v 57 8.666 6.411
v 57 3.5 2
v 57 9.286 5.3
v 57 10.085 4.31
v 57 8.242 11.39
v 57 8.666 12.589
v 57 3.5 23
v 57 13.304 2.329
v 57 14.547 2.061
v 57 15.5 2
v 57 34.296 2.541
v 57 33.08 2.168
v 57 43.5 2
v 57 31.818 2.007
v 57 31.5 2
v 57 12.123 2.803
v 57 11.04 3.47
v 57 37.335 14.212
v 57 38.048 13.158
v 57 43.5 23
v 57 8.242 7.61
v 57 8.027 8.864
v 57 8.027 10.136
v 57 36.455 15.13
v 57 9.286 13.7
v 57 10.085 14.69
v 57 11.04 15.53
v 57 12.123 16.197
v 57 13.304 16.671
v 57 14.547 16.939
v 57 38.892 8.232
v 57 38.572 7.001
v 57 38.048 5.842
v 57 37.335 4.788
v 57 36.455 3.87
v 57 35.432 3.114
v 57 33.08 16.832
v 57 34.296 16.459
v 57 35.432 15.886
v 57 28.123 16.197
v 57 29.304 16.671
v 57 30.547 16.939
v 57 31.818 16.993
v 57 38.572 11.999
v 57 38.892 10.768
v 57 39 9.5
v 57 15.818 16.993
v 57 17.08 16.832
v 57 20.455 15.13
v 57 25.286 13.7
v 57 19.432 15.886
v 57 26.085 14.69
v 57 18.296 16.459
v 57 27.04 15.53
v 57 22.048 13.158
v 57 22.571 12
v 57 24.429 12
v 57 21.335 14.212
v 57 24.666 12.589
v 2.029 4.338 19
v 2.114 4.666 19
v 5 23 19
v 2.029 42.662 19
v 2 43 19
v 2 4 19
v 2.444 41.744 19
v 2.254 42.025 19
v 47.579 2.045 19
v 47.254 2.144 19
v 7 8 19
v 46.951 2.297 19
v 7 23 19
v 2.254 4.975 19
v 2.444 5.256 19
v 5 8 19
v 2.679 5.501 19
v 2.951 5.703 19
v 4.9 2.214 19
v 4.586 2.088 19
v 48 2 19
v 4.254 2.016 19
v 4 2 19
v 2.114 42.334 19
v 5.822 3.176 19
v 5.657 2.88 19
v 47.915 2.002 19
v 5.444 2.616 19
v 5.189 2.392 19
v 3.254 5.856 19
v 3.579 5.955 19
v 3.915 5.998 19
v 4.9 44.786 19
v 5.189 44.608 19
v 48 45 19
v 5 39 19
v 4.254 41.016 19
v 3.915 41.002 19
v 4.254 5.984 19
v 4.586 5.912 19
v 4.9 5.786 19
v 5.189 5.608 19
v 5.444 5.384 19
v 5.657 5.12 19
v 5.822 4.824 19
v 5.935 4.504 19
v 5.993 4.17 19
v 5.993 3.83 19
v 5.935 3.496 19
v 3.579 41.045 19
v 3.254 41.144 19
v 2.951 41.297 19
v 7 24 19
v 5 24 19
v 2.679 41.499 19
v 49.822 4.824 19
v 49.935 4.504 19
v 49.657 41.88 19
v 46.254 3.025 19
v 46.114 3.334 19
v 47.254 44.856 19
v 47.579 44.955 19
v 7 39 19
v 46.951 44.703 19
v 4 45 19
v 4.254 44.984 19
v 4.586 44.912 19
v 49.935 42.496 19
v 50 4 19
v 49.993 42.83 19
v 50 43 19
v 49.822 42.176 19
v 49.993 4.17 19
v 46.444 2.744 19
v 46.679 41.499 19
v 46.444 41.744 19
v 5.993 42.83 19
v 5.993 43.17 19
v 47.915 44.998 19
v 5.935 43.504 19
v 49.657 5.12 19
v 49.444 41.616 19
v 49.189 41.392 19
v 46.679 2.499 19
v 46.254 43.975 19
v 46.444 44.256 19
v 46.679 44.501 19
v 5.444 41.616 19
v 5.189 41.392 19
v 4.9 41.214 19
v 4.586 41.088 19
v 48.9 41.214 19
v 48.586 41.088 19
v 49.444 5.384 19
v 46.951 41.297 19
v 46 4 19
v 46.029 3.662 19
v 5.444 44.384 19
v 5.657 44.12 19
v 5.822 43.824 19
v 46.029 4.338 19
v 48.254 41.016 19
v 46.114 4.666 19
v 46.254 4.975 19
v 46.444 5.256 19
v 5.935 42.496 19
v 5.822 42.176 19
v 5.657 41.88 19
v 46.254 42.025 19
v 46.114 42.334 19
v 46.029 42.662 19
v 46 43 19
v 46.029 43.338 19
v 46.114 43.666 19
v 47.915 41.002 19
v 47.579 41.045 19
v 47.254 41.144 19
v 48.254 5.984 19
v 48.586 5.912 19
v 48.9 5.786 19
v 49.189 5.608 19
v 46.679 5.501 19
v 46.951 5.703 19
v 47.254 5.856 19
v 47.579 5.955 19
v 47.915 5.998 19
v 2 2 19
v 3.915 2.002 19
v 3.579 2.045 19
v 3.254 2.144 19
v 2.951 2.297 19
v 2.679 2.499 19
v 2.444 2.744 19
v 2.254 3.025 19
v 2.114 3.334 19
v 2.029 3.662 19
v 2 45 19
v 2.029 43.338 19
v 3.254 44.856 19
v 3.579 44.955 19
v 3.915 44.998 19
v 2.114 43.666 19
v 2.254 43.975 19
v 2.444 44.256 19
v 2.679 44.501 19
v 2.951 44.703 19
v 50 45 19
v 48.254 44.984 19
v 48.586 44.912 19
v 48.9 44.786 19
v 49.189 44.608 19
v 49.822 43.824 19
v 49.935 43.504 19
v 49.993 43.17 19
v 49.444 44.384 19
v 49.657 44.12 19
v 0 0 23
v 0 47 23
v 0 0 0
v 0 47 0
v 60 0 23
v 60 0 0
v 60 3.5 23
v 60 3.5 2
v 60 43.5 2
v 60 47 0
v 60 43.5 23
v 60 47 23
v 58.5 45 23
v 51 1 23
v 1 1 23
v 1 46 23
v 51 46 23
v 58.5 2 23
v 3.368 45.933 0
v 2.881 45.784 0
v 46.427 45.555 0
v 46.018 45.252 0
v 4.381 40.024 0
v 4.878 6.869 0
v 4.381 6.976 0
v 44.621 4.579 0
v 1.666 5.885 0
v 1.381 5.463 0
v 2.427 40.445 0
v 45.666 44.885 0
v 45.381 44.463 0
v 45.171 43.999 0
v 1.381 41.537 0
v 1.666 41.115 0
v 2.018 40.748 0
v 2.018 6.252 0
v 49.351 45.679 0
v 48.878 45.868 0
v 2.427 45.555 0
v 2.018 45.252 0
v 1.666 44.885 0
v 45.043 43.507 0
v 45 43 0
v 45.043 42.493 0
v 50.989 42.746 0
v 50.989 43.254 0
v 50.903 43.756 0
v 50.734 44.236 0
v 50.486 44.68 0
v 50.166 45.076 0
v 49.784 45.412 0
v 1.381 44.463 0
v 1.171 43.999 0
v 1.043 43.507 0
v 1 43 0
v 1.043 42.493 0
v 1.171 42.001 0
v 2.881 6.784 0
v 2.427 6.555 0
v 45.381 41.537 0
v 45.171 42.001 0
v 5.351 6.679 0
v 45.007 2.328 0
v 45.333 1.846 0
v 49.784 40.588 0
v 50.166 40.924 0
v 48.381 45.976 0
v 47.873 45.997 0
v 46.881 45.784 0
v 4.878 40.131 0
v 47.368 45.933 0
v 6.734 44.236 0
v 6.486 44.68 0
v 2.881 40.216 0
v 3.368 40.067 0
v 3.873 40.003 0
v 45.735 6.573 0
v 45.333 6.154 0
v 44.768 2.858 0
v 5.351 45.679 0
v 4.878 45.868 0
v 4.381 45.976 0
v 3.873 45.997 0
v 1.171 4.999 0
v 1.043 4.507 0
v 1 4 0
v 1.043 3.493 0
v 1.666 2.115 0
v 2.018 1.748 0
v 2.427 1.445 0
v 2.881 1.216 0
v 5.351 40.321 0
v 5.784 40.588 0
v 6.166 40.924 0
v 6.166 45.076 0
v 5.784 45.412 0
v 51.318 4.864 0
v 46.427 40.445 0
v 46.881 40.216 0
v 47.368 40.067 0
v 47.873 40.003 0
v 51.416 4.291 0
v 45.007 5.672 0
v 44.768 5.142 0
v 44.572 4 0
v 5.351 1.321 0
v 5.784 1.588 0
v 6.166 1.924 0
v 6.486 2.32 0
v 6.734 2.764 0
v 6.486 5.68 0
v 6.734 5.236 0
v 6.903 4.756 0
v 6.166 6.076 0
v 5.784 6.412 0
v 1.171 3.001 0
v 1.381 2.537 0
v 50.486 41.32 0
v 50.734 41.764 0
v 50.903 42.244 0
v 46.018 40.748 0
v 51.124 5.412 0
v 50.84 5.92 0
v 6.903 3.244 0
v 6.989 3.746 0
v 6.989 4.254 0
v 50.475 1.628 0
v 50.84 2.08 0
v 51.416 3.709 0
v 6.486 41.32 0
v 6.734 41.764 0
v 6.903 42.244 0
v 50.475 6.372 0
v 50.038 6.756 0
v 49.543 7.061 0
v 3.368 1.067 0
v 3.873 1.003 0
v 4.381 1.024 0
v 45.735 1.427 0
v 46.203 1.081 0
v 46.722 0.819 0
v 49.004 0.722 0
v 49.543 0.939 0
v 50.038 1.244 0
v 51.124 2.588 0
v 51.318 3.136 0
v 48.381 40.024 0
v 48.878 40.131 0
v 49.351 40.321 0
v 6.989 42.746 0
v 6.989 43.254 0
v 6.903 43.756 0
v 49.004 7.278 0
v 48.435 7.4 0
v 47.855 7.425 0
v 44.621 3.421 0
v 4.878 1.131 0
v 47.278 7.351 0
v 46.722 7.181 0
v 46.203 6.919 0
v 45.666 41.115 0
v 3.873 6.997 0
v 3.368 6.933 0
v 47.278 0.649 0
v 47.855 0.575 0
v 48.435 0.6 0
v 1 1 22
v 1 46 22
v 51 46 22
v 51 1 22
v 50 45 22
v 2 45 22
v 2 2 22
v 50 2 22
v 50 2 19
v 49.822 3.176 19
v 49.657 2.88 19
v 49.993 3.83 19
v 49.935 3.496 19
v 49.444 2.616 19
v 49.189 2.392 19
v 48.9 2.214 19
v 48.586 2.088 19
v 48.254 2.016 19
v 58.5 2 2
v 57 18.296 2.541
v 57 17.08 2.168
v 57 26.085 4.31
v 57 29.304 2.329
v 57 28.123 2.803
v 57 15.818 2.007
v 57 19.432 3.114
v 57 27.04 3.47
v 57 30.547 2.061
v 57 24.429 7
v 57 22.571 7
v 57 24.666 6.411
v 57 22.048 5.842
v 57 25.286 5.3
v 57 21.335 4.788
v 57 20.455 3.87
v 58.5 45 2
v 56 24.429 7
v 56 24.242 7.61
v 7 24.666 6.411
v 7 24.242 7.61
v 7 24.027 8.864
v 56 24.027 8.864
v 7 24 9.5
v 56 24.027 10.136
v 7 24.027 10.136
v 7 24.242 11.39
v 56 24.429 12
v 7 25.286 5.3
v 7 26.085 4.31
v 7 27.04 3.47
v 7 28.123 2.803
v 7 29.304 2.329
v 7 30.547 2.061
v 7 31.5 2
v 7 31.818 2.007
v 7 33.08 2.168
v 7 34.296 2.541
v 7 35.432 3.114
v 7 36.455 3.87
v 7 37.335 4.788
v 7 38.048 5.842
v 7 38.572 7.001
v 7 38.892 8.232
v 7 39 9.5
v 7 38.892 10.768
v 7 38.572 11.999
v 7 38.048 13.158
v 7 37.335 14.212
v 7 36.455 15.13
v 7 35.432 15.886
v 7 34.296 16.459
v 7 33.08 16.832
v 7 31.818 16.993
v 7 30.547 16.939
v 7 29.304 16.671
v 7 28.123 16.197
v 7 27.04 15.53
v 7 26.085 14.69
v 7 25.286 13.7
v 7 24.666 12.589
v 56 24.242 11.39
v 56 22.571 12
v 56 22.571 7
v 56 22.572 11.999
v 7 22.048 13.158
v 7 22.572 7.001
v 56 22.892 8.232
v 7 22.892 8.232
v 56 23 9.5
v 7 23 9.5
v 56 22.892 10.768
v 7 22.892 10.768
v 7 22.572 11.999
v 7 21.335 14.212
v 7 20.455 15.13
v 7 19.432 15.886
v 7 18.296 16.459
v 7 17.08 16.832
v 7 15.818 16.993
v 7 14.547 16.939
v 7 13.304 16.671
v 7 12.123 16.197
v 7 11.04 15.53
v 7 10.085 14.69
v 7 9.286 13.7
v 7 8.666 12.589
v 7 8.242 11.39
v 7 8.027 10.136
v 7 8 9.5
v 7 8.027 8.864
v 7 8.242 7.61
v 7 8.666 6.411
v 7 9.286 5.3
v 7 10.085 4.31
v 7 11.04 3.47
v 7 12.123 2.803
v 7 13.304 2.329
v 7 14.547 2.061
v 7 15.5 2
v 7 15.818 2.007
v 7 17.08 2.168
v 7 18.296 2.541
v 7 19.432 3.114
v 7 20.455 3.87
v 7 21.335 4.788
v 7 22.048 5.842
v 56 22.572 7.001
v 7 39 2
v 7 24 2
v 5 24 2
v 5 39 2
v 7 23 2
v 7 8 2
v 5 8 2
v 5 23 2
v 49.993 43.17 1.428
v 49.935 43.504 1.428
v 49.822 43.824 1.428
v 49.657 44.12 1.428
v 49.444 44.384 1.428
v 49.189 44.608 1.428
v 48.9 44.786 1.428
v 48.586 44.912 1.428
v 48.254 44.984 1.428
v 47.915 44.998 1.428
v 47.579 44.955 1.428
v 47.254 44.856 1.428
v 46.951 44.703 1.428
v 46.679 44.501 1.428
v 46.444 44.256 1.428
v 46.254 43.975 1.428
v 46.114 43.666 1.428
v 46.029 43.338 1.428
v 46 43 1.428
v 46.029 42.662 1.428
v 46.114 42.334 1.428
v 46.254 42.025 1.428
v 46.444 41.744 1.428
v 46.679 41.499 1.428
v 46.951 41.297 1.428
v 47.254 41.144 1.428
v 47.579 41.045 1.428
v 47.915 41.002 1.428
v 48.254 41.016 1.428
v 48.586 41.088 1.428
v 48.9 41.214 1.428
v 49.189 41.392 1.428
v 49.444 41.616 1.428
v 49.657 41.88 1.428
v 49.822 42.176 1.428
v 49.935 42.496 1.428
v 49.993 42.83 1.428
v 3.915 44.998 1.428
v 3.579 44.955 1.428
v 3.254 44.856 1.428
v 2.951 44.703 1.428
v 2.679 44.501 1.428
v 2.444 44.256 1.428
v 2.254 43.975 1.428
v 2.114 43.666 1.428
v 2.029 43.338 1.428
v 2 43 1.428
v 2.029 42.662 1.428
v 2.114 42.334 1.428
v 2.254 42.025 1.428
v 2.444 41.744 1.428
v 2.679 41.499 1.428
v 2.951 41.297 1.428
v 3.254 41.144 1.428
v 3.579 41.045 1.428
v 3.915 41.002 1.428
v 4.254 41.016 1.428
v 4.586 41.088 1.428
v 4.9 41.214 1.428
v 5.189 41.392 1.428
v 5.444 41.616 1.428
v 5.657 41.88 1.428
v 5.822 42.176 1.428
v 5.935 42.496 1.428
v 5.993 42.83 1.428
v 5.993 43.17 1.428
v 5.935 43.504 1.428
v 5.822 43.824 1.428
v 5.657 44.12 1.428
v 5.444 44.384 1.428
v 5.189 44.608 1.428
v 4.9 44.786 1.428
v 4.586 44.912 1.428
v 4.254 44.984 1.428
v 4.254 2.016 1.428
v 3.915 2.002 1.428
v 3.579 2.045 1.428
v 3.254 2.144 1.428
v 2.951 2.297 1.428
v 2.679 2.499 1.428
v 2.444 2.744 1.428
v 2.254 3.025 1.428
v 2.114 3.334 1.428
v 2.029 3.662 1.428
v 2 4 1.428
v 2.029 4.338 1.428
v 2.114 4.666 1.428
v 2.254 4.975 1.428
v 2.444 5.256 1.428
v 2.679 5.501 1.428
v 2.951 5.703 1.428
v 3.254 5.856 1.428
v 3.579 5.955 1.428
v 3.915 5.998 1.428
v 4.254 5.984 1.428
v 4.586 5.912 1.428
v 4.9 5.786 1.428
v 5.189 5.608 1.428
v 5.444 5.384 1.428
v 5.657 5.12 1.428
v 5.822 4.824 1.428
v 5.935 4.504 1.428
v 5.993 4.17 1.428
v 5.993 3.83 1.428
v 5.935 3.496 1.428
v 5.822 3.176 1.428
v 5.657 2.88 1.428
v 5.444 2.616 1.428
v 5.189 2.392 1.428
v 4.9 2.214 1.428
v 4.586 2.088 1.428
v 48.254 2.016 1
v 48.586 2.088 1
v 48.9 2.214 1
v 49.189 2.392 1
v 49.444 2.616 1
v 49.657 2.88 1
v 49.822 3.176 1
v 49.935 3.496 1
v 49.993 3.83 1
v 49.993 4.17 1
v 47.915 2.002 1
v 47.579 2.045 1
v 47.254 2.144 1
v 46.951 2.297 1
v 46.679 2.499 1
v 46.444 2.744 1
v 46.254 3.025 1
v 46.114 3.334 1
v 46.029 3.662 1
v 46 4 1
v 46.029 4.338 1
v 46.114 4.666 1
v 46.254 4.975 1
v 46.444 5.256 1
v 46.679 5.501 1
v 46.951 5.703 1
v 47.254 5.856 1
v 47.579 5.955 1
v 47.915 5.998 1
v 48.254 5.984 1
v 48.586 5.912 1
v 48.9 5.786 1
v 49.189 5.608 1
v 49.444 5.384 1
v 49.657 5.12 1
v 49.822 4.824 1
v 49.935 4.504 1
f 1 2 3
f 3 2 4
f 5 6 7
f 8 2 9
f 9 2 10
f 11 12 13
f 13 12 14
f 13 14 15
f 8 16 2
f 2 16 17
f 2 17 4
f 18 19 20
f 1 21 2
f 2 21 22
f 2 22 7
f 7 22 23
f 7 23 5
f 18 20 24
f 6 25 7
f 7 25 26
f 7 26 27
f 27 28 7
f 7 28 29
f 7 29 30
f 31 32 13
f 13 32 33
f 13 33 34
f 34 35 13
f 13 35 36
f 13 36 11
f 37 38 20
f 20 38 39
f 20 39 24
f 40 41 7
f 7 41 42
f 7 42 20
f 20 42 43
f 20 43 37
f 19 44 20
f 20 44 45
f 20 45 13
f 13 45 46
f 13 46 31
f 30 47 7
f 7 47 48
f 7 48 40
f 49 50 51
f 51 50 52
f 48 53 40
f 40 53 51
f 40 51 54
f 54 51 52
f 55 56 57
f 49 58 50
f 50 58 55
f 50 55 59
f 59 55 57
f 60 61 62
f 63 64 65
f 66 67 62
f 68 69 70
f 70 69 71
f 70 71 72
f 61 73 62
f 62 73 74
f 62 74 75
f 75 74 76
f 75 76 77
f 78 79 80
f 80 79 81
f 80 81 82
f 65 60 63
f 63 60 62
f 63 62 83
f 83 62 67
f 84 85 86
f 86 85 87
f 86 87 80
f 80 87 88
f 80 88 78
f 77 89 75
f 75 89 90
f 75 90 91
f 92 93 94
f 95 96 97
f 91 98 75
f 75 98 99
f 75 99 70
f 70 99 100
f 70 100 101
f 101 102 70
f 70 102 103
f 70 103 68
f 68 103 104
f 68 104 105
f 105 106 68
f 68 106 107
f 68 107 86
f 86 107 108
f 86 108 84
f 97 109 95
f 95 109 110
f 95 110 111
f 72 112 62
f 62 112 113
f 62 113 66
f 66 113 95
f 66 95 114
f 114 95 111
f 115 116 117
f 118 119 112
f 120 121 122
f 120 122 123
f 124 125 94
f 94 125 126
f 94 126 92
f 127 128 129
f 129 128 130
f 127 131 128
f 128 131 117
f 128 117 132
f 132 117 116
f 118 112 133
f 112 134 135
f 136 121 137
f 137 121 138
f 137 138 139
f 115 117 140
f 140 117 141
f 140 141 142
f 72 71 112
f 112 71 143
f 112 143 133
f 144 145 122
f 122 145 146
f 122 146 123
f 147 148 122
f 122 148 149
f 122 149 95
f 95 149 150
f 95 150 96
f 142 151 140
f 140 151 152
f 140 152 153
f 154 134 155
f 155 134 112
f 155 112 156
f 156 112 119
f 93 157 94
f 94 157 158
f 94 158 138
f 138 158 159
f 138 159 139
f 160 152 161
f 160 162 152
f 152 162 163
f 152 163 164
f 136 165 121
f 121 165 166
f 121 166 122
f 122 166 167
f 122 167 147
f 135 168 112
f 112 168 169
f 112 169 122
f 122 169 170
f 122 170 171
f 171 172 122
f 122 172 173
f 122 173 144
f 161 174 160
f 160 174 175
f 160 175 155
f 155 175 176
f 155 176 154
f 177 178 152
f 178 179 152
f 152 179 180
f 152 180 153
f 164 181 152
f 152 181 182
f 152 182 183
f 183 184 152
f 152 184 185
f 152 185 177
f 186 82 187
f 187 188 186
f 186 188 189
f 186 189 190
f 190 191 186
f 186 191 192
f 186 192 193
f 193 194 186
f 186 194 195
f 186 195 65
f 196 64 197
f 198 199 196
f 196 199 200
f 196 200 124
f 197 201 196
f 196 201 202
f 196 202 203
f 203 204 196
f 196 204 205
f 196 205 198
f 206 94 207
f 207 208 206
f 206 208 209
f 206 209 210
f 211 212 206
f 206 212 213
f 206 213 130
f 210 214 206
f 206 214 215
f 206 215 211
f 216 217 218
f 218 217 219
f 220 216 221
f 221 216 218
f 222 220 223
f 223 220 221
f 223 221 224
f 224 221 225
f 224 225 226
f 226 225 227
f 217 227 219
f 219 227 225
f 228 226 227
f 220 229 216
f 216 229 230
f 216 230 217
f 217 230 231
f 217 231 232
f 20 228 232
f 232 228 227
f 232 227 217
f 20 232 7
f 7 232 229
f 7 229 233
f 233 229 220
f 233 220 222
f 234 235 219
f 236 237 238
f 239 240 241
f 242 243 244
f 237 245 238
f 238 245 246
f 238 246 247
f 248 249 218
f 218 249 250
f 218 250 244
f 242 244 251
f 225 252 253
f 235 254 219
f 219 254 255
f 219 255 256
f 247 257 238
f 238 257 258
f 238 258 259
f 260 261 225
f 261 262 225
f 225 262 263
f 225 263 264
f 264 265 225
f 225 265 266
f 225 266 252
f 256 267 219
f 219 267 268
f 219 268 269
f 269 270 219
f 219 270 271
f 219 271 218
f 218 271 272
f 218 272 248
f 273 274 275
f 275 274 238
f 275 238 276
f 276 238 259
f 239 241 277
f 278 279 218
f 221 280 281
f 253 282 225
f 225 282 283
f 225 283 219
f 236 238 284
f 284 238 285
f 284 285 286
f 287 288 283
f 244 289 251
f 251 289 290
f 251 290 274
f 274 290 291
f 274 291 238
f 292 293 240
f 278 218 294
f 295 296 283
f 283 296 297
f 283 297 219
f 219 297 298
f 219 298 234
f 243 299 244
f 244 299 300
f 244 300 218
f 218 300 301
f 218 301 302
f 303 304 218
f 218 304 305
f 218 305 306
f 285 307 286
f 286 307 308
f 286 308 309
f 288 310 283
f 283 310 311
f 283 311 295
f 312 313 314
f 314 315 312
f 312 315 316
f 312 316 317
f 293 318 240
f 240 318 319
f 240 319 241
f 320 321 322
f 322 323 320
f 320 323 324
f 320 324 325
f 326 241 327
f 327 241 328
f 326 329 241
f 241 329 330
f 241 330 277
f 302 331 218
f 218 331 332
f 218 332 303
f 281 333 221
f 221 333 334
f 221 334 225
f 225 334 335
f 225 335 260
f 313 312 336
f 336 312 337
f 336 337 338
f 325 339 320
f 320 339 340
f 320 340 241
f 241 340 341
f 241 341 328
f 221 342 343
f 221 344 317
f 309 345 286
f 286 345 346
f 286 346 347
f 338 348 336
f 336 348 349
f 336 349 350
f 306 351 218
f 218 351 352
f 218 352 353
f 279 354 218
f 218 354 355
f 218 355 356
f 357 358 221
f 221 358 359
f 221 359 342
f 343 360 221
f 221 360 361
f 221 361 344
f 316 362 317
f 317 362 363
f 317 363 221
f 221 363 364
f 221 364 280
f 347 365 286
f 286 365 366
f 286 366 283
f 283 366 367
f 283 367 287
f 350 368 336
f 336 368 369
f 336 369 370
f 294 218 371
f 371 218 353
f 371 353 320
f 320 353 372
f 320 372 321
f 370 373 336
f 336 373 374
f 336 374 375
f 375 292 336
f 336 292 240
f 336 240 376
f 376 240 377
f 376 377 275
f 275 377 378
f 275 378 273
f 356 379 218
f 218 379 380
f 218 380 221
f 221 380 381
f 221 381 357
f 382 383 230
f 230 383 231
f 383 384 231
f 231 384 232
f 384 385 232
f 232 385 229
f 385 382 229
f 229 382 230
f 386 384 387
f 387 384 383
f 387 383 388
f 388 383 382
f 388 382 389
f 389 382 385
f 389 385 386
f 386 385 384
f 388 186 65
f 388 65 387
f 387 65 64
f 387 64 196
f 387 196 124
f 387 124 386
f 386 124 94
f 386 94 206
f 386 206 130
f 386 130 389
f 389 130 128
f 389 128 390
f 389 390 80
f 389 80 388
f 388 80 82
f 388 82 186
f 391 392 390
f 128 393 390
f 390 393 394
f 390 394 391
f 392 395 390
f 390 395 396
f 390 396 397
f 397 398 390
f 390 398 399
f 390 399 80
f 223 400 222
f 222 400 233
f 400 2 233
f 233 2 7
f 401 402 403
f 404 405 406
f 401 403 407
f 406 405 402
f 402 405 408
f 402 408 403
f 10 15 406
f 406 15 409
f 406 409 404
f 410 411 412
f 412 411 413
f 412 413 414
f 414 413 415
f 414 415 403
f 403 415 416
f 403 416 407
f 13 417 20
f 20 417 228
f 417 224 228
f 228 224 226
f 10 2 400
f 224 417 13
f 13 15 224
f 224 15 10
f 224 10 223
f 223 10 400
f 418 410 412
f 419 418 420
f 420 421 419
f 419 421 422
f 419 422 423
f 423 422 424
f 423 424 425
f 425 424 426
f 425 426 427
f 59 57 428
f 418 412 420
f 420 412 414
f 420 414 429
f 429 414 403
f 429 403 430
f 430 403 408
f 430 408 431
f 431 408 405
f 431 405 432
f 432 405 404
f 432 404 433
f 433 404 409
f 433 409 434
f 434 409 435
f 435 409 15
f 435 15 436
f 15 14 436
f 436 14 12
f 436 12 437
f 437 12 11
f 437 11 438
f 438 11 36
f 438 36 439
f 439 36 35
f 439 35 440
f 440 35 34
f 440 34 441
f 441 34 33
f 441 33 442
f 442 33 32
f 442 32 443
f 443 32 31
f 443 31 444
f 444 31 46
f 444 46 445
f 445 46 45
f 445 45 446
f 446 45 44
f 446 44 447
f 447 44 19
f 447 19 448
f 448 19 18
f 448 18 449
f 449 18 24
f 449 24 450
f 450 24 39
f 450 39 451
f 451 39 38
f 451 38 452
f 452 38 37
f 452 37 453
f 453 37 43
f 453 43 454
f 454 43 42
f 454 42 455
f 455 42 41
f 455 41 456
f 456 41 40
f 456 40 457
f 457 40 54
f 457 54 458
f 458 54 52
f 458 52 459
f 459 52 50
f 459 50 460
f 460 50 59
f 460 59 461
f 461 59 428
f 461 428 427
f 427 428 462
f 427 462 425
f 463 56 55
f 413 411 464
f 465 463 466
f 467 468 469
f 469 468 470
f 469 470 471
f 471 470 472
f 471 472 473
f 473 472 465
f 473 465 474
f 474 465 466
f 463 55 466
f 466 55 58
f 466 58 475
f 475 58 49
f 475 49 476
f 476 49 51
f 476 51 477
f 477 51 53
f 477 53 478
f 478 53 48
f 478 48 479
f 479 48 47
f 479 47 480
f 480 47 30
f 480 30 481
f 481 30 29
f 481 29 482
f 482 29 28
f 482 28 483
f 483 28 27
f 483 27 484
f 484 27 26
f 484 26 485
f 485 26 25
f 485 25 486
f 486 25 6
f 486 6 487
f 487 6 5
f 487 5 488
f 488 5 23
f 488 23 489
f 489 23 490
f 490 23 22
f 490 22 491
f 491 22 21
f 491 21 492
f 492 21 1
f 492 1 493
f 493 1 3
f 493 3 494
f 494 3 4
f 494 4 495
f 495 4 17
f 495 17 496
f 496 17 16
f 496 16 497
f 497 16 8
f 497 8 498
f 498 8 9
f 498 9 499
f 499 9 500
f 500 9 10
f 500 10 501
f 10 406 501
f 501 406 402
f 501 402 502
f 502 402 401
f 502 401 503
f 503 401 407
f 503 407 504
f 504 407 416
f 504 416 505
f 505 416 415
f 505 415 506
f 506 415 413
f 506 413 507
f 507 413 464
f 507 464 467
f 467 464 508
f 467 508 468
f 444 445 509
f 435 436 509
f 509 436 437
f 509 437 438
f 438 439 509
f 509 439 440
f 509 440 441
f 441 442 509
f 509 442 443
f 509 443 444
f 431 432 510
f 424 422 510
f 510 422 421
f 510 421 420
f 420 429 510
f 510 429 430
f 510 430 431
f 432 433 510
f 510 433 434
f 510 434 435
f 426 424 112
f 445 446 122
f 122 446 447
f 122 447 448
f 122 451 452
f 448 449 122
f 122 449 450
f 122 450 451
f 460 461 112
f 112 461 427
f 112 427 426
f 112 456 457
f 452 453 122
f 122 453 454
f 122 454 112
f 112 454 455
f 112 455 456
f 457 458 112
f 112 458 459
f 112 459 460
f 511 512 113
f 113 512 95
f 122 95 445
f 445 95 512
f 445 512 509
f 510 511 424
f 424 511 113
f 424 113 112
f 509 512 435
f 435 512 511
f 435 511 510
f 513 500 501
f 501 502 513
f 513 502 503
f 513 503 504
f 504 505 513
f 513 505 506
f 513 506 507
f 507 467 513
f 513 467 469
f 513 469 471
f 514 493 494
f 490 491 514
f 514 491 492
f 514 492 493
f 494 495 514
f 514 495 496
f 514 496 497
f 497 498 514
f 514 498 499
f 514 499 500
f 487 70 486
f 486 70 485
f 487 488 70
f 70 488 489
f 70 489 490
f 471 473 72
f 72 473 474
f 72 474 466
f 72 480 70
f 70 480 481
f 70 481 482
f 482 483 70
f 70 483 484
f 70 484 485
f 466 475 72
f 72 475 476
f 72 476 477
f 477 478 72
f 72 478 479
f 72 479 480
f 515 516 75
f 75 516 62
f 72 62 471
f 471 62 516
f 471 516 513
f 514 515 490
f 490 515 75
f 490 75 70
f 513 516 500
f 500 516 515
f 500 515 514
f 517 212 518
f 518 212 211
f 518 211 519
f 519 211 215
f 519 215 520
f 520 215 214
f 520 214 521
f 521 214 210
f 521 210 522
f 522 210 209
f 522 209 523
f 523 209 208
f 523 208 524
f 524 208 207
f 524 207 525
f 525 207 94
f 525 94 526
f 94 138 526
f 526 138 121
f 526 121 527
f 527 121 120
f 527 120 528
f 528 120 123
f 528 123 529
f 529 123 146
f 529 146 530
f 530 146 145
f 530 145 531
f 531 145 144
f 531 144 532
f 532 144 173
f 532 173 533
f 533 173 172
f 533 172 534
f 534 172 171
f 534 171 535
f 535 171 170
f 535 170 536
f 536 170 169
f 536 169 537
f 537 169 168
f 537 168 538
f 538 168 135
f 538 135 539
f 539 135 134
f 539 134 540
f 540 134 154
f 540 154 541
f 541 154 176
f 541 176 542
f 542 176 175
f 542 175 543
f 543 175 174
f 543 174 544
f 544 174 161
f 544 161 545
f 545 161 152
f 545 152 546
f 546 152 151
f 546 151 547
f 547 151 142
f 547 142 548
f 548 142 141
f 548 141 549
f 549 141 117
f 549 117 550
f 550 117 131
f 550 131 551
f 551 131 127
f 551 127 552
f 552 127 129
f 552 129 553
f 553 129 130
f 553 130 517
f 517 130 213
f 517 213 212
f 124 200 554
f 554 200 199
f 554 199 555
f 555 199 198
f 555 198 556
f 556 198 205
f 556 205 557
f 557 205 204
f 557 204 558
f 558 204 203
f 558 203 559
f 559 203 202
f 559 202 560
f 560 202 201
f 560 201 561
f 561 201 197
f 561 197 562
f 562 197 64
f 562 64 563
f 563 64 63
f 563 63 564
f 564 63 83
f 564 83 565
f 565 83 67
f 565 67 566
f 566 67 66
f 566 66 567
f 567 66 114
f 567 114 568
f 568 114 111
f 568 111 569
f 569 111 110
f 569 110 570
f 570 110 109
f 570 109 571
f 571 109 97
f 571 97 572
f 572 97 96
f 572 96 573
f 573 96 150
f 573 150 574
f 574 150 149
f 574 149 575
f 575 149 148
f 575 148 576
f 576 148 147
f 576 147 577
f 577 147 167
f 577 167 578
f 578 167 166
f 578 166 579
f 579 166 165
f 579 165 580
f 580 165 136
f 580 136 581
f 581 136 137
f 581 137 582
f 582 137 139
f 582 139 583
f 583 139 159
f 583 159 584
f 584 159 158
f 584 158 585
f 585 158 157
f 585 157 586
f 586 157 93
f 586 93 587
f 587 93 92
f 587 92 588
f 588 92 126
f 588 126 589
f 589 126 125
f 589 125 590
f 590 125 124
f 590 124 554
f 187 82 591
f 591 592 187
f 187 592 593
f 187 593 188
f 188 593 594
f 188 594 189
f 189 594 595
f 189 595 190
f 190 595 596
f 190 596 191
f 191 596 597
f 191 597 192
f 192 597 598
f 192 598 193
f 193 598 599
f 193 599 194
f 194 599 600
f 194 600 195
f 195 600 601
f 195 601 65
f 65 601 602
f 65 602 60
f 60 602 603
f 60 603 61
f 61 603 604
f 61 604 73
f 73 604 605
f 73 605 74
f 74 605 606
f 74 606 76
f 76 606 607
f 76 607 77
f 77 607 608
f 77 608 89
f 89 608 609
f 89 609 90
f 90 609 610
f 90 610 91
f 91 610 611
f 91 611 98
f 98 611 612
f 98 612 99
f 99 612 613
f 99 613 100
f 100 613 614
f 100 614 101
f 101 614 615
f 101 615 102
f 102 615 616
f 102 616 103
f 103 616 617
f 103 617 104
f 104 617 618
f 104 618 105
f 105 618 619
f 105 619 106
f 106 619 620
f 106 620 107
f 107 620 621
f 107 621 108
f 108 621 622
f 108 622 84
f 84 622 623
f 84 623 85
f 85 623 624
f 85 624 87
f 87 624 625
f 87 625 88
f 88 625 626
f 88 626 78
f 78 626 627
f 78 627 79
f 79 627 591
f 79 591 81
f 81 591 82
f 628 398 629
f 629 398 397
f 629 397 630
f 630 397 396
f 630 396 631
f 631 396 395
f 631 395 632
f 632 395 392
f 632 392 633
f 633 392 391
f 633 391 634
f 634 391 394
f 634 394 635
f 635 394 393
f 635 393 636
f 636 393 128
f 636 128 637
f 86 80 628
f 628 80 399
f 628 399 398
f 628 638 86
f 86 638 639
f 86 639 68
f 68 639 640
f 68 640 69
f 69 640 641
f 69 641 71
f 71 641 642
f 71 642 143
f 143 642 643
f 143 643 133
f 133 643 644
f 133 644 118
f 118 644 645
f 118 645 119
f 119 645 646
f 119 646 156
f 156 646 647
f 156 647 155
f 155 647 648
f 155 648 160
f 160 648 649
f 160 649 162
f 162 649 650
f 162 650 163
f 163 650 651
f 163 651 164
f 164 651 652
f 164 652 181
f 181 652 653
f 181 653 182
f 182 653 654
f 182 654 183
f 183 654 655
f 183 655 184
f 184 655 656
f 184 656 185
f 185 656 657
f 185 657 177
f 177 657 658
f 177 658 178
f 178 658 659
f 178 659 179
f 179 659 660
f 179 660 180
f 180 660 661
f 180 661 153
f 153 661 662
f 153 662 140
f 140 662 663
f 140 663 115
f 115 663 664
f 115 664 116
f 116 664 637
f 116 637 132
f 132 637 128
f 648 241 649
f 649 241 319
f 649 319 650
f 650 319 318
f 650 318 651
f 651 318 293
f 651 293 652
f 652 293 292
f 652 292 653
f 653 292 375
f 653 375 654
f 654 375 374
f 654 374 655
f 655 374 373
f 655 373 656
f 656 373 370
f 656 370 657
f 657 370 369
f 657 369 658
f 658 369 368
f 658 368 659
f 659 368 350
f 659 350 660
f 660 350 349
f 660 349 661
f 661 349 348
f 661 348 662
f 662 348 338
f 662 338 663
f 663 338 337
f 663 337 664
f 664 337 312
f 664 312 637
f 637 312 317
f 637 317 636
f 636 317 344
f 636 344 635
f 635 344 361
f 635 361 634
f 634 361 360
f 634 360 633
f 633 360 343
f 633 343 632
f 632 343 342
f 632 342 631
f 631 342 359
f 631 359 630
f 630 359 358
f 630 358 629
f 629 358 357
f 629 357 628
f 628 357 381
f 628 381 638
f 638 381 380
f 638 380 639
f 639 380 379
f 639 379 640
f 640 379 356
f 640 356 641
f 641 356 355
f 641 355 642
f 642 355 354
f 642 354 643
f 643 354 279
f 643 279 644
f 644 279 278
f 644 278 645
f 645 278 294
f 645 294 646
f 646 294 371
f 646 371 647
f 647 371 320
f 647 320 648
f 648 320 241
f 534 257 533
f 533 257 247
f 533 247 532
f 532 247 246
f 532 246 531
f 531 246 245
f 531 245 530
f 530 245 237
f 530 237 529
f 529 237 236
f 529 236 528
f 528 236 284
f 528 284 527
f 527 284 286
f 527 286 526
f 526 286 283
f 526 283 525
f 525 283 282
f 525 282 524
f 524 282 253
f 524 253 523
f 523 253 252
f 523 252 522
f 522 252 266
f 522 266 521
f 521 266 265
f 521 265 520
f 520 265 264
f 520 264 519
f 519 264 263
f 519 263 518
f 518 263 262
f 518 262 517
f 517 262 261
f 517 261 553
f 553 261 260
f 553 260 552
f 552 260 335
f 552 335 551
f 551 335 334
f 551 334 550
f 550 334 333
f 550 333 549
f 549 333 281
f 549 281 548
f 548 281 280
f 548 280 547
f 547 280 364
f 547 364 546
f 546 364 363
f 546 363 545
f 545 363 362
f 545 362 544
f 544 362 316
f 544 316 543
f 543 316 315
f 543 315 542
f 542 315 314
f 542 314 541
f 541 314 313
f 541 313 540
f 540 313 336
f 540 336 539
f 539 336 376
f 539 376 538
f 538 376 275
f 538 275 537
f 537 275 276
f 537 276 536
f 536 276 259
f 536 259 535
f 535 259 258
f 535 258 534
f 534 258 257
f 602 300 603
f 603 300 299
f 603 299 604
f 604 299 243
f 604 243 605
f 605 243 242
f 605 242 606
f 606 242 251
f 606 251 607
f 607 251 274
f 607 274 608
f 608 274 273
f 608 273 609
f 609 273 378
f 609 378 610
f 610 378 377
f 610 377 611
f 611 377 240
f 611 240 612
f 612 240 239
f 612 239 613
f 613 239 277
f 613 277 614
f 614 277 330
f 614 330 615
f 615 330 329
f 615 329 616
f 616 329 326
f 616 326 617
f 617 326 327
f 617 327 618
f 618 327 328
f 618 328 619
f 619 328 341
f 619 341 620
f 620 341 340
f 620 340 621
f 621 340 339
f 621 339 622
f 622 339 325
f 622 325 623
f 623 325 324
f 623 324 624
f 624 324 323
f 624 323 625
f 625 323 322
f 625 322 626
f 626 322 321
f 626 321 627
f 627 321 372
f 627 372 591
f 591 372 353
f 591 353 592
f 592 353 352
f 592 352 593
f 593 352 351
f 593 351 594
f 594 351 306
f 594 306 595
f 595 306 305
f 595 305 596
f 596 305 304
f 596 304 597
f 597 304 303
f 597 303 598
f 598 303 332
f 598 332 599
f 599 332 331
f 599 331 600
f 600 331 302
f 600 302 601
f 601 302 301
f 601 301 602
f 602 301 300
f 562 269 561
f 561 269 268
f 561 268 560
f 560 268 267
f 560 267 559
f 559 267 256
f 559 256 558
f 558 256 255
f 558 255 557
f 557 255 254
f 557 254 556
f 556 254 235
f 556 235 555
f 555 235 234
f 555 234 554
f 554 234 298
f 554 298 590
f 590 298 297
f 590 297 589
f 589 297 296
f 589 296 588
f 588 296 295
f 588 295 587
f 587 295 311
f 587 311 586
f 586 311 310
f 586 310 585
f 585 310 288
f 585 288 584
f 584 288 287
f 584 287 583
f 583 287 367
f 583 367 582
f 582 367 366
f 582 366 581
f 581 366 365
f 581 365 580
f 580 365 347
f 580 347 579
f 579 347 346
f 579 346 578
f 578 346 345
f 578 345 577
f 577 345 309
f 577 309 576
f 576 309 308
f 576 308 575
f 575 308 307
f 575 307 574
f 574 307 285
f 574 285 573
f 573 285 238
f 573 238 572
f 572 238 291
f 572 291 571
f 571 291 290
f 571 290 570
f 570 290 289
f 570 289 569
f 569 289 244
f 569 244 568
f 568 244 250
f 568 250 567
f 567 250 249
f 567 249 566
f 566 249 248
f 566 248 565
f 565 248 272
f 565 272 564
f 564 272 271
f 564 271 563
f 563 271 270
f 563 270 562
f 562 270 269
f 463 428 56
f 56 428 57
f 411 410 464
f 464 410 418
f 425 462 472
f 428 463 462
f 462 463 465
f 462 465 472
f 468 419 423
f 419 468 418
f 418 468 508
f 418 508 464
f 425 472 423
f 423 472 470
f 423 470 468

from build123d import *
from OCP.BRepFilletAPI import BRepFilletAPI_MakeChamfer

# Parameters (mm, degrees)
ESQUISSE1_W             = 60
ESQUISSE1_H             = 47
BOSS_EXTRU_1_DEPTH      = 23
ESQUISSE2_W             = 50
ESQUISSE2_H             = 45
ENL_V_MAT_EXTRU_1_DEPTH = 1
ESQUISSE3_W             = 48
ESQUISSE3_H             = 43
ENL_V_MAT_EXTRU_2_DEPTH = 3
ENL_V_MAT_EXTRU_3_DEPTH = 21
ESQUISSE5_R             = 7.5
ENL_V_MAT_EXTRU_4_DEPTH = 51
ESQUISSE8_W             = 2
ESQUISSE8_H             = 15
ENL_V_MAT_EXTRU_5_DEPTH = 17
ESQUISSE9_R             = 2
ENL_V_MAT_EXTRU_6_DEPTH = 80.61155695
CHANFREIN1_SIZE         = 1
CHANFREIN1_SIZE2        = 1.428148007
ESQUISSE10_W            = 5
ESQUISSE10_H            = 10
ENL_V_MAT_EXTRU_7_DEPTH = 1


with BuildPart() as part:
    # Esquisse1 → Boss.-Extru.1 (new body)
    with BuildSketch(Plane.XY):
        with Locations((30, 23.5)):
            Rectangle(ESQUISSE1_W, ESQUISSE1_H)
    extrude(amount=BOSS_EXTRU_1_DEPTH)

    # Esquisse2 → Enlèv. mat.-Extru.1 (cut)
    with BuildSketch(Plane.XY.offset(23)):
        with Locations((26, 23.5)):
            Rectangle(ESQUISSE2_W, ESQUISSE2_H)
    extrude(amount=-ENL_V_MAT_EXTRU_1_DEPTH, mode=Mode.SUBTRACT)

    # Esquisse3 → Enlèv. mat.-Extru.2 (cut)
    with BuildSketch(Plane.XY.offset(22)):
        with Locations((26, 23.5)):
            Rectangle(ESQUISSE3_W, ESQUISSE3_H)
    extrude(amount=-ENL_V_MAT_EXTRU_2_DEPTH, mode=Mode.SUBTRACT)

    # Esquisse4 → Enlèv. mat.-Extru.3 (cut)
    with BuildSketch(Plane.XY.offset(23)):
        Polygon((60, 43.5), (58.5, 45), (57, 43.5), (57, 3.5), (58.5, 2), (60, 3.5), align=None)
    extrude(amount=-ENL_V_MAT_EXTRU_3_DEPTH, mode=Mode.SUBTRACT)

    # Esquisse5 → Enlèv. mat.-Extru.4 (cut)
    with BuildSketch(Plane(origin=(57, 0, 0), x_dir=(0, 0, -1), z_dir=(1, 0, 0))):
        with Locations(Location((-9.5, 31.5, 0), (0, 0, 90))):
            Circle(ESQUISSE5_R)
        with Locations(Location((-9.5, 15.5, 0), (0, 0, 90))):
            Circle(ESQUISSE5_R)
    extrude(amount=-ENL_V_MAT_EXTRU_4_DEPTH, mode=Mode.SUBTRACT)

    # Esquisse8 → Enlèv. mat.-Extru.5 (cut)
    with BuildSketch(Plane.XY.offset(19)):
        with Locations((6, 31.5)):
            Rectangle(ESQUISSE8_W, ESQUISSE8_H)
        with Locations((6, 15.5)):
            Rectangle(ESQUISSE8_W, ESQUISSE8_H)
    extrude(amount=-ENL_V_MAT_EXTRU_5_DEPTH, mode=Mode.SUBTRACT)

    # Esquisse9 → Enlèv. mat.-Extru.6 (cut, through all)
    with BuildSketch(Plane(origin=(0, 0, 0), x_dir=(-1, 0, 0), z_dir=(0, 0, -1))):
        with Locations((-48, 43)):
            Circle(ESQUISSE9_R)
        with Locations((-4, 43)):
            Circle(ESQUISSE9_R)
        with Locations((-4, 4)):
            Circle(ESQUISSE9_R)
        with Locations((-48, 4)):
            Circle(ESQUISSE9_R)
    extrude(amount=-ENL_V_MAT_EXTRU_6_DEPTH, mode=Mode.SUBTRACT)

    # Chanfrein1: one chamfer whose edges measure the first distance from different faces: ONE call of the kernel's chamfer builder (chamfer() names one face for all edges)
    chanfrein1_edges_1 = [part.edges().sort_by_distance(p)[0] for p in [
        (50, 43, 0),
        (6, 43, 0),
        (6, 4, 0),
    ]]
    chanfrein1_side_1 = [part.faces().sort_by_distance(p)[0] for p in [
        (30.072592492, 23.5, 0),
    ]]
    chanfrein1_edges_2 = [part.edges().sort_by_distance(p)[0] for p in [
        (50, 4, 0),
    ]]
    chanfrein1_side_2 = [part.faces().sort_by_distance(p)[0] for p in [
        (50, 4, 9.5),
    ]]
    chanfrein1 = BRepFilletAPI_MakeChamfer(part.part.solid().wrapped)
    for e in chanfrein1_edges_1:
        chanfrein1.Add(CHANFREIN1_SIZE, CHANFREIN1_SIZE2, e.wrapped, chanfrein1_side_1[0].wrapped)  # the first distance lies on this face
    for e in chanfrein1_edges_2:
        chanfrein1.Add(CHANFREIN1_SIZE, CHANFREIN1_SIZE2, e.wrapped, chanfrein1_side_2[0].wrapped)  # the first distance lies on this face
    add(Compound.cast(chanfrein1.Shape()), mode=Mode.REPLACE)

    # Esquisse10 → Enlèv. mat.-Extru.7 (cut)
    with BuildSketch(Plane(origin=(57, 0, 0), x_dir=(0, 0, -1), z_dir=(1, 0, 0))):
        with Locations((-9.5, 22.68303286)):
            Rectangle(ESQUISSE10_W, ESQUISSE10_H)
    extrude(amount=-ENL_V_MAT_EXTRU_7_DEPTH, mode=Mode.SUBTRACT)


solid = part.part
